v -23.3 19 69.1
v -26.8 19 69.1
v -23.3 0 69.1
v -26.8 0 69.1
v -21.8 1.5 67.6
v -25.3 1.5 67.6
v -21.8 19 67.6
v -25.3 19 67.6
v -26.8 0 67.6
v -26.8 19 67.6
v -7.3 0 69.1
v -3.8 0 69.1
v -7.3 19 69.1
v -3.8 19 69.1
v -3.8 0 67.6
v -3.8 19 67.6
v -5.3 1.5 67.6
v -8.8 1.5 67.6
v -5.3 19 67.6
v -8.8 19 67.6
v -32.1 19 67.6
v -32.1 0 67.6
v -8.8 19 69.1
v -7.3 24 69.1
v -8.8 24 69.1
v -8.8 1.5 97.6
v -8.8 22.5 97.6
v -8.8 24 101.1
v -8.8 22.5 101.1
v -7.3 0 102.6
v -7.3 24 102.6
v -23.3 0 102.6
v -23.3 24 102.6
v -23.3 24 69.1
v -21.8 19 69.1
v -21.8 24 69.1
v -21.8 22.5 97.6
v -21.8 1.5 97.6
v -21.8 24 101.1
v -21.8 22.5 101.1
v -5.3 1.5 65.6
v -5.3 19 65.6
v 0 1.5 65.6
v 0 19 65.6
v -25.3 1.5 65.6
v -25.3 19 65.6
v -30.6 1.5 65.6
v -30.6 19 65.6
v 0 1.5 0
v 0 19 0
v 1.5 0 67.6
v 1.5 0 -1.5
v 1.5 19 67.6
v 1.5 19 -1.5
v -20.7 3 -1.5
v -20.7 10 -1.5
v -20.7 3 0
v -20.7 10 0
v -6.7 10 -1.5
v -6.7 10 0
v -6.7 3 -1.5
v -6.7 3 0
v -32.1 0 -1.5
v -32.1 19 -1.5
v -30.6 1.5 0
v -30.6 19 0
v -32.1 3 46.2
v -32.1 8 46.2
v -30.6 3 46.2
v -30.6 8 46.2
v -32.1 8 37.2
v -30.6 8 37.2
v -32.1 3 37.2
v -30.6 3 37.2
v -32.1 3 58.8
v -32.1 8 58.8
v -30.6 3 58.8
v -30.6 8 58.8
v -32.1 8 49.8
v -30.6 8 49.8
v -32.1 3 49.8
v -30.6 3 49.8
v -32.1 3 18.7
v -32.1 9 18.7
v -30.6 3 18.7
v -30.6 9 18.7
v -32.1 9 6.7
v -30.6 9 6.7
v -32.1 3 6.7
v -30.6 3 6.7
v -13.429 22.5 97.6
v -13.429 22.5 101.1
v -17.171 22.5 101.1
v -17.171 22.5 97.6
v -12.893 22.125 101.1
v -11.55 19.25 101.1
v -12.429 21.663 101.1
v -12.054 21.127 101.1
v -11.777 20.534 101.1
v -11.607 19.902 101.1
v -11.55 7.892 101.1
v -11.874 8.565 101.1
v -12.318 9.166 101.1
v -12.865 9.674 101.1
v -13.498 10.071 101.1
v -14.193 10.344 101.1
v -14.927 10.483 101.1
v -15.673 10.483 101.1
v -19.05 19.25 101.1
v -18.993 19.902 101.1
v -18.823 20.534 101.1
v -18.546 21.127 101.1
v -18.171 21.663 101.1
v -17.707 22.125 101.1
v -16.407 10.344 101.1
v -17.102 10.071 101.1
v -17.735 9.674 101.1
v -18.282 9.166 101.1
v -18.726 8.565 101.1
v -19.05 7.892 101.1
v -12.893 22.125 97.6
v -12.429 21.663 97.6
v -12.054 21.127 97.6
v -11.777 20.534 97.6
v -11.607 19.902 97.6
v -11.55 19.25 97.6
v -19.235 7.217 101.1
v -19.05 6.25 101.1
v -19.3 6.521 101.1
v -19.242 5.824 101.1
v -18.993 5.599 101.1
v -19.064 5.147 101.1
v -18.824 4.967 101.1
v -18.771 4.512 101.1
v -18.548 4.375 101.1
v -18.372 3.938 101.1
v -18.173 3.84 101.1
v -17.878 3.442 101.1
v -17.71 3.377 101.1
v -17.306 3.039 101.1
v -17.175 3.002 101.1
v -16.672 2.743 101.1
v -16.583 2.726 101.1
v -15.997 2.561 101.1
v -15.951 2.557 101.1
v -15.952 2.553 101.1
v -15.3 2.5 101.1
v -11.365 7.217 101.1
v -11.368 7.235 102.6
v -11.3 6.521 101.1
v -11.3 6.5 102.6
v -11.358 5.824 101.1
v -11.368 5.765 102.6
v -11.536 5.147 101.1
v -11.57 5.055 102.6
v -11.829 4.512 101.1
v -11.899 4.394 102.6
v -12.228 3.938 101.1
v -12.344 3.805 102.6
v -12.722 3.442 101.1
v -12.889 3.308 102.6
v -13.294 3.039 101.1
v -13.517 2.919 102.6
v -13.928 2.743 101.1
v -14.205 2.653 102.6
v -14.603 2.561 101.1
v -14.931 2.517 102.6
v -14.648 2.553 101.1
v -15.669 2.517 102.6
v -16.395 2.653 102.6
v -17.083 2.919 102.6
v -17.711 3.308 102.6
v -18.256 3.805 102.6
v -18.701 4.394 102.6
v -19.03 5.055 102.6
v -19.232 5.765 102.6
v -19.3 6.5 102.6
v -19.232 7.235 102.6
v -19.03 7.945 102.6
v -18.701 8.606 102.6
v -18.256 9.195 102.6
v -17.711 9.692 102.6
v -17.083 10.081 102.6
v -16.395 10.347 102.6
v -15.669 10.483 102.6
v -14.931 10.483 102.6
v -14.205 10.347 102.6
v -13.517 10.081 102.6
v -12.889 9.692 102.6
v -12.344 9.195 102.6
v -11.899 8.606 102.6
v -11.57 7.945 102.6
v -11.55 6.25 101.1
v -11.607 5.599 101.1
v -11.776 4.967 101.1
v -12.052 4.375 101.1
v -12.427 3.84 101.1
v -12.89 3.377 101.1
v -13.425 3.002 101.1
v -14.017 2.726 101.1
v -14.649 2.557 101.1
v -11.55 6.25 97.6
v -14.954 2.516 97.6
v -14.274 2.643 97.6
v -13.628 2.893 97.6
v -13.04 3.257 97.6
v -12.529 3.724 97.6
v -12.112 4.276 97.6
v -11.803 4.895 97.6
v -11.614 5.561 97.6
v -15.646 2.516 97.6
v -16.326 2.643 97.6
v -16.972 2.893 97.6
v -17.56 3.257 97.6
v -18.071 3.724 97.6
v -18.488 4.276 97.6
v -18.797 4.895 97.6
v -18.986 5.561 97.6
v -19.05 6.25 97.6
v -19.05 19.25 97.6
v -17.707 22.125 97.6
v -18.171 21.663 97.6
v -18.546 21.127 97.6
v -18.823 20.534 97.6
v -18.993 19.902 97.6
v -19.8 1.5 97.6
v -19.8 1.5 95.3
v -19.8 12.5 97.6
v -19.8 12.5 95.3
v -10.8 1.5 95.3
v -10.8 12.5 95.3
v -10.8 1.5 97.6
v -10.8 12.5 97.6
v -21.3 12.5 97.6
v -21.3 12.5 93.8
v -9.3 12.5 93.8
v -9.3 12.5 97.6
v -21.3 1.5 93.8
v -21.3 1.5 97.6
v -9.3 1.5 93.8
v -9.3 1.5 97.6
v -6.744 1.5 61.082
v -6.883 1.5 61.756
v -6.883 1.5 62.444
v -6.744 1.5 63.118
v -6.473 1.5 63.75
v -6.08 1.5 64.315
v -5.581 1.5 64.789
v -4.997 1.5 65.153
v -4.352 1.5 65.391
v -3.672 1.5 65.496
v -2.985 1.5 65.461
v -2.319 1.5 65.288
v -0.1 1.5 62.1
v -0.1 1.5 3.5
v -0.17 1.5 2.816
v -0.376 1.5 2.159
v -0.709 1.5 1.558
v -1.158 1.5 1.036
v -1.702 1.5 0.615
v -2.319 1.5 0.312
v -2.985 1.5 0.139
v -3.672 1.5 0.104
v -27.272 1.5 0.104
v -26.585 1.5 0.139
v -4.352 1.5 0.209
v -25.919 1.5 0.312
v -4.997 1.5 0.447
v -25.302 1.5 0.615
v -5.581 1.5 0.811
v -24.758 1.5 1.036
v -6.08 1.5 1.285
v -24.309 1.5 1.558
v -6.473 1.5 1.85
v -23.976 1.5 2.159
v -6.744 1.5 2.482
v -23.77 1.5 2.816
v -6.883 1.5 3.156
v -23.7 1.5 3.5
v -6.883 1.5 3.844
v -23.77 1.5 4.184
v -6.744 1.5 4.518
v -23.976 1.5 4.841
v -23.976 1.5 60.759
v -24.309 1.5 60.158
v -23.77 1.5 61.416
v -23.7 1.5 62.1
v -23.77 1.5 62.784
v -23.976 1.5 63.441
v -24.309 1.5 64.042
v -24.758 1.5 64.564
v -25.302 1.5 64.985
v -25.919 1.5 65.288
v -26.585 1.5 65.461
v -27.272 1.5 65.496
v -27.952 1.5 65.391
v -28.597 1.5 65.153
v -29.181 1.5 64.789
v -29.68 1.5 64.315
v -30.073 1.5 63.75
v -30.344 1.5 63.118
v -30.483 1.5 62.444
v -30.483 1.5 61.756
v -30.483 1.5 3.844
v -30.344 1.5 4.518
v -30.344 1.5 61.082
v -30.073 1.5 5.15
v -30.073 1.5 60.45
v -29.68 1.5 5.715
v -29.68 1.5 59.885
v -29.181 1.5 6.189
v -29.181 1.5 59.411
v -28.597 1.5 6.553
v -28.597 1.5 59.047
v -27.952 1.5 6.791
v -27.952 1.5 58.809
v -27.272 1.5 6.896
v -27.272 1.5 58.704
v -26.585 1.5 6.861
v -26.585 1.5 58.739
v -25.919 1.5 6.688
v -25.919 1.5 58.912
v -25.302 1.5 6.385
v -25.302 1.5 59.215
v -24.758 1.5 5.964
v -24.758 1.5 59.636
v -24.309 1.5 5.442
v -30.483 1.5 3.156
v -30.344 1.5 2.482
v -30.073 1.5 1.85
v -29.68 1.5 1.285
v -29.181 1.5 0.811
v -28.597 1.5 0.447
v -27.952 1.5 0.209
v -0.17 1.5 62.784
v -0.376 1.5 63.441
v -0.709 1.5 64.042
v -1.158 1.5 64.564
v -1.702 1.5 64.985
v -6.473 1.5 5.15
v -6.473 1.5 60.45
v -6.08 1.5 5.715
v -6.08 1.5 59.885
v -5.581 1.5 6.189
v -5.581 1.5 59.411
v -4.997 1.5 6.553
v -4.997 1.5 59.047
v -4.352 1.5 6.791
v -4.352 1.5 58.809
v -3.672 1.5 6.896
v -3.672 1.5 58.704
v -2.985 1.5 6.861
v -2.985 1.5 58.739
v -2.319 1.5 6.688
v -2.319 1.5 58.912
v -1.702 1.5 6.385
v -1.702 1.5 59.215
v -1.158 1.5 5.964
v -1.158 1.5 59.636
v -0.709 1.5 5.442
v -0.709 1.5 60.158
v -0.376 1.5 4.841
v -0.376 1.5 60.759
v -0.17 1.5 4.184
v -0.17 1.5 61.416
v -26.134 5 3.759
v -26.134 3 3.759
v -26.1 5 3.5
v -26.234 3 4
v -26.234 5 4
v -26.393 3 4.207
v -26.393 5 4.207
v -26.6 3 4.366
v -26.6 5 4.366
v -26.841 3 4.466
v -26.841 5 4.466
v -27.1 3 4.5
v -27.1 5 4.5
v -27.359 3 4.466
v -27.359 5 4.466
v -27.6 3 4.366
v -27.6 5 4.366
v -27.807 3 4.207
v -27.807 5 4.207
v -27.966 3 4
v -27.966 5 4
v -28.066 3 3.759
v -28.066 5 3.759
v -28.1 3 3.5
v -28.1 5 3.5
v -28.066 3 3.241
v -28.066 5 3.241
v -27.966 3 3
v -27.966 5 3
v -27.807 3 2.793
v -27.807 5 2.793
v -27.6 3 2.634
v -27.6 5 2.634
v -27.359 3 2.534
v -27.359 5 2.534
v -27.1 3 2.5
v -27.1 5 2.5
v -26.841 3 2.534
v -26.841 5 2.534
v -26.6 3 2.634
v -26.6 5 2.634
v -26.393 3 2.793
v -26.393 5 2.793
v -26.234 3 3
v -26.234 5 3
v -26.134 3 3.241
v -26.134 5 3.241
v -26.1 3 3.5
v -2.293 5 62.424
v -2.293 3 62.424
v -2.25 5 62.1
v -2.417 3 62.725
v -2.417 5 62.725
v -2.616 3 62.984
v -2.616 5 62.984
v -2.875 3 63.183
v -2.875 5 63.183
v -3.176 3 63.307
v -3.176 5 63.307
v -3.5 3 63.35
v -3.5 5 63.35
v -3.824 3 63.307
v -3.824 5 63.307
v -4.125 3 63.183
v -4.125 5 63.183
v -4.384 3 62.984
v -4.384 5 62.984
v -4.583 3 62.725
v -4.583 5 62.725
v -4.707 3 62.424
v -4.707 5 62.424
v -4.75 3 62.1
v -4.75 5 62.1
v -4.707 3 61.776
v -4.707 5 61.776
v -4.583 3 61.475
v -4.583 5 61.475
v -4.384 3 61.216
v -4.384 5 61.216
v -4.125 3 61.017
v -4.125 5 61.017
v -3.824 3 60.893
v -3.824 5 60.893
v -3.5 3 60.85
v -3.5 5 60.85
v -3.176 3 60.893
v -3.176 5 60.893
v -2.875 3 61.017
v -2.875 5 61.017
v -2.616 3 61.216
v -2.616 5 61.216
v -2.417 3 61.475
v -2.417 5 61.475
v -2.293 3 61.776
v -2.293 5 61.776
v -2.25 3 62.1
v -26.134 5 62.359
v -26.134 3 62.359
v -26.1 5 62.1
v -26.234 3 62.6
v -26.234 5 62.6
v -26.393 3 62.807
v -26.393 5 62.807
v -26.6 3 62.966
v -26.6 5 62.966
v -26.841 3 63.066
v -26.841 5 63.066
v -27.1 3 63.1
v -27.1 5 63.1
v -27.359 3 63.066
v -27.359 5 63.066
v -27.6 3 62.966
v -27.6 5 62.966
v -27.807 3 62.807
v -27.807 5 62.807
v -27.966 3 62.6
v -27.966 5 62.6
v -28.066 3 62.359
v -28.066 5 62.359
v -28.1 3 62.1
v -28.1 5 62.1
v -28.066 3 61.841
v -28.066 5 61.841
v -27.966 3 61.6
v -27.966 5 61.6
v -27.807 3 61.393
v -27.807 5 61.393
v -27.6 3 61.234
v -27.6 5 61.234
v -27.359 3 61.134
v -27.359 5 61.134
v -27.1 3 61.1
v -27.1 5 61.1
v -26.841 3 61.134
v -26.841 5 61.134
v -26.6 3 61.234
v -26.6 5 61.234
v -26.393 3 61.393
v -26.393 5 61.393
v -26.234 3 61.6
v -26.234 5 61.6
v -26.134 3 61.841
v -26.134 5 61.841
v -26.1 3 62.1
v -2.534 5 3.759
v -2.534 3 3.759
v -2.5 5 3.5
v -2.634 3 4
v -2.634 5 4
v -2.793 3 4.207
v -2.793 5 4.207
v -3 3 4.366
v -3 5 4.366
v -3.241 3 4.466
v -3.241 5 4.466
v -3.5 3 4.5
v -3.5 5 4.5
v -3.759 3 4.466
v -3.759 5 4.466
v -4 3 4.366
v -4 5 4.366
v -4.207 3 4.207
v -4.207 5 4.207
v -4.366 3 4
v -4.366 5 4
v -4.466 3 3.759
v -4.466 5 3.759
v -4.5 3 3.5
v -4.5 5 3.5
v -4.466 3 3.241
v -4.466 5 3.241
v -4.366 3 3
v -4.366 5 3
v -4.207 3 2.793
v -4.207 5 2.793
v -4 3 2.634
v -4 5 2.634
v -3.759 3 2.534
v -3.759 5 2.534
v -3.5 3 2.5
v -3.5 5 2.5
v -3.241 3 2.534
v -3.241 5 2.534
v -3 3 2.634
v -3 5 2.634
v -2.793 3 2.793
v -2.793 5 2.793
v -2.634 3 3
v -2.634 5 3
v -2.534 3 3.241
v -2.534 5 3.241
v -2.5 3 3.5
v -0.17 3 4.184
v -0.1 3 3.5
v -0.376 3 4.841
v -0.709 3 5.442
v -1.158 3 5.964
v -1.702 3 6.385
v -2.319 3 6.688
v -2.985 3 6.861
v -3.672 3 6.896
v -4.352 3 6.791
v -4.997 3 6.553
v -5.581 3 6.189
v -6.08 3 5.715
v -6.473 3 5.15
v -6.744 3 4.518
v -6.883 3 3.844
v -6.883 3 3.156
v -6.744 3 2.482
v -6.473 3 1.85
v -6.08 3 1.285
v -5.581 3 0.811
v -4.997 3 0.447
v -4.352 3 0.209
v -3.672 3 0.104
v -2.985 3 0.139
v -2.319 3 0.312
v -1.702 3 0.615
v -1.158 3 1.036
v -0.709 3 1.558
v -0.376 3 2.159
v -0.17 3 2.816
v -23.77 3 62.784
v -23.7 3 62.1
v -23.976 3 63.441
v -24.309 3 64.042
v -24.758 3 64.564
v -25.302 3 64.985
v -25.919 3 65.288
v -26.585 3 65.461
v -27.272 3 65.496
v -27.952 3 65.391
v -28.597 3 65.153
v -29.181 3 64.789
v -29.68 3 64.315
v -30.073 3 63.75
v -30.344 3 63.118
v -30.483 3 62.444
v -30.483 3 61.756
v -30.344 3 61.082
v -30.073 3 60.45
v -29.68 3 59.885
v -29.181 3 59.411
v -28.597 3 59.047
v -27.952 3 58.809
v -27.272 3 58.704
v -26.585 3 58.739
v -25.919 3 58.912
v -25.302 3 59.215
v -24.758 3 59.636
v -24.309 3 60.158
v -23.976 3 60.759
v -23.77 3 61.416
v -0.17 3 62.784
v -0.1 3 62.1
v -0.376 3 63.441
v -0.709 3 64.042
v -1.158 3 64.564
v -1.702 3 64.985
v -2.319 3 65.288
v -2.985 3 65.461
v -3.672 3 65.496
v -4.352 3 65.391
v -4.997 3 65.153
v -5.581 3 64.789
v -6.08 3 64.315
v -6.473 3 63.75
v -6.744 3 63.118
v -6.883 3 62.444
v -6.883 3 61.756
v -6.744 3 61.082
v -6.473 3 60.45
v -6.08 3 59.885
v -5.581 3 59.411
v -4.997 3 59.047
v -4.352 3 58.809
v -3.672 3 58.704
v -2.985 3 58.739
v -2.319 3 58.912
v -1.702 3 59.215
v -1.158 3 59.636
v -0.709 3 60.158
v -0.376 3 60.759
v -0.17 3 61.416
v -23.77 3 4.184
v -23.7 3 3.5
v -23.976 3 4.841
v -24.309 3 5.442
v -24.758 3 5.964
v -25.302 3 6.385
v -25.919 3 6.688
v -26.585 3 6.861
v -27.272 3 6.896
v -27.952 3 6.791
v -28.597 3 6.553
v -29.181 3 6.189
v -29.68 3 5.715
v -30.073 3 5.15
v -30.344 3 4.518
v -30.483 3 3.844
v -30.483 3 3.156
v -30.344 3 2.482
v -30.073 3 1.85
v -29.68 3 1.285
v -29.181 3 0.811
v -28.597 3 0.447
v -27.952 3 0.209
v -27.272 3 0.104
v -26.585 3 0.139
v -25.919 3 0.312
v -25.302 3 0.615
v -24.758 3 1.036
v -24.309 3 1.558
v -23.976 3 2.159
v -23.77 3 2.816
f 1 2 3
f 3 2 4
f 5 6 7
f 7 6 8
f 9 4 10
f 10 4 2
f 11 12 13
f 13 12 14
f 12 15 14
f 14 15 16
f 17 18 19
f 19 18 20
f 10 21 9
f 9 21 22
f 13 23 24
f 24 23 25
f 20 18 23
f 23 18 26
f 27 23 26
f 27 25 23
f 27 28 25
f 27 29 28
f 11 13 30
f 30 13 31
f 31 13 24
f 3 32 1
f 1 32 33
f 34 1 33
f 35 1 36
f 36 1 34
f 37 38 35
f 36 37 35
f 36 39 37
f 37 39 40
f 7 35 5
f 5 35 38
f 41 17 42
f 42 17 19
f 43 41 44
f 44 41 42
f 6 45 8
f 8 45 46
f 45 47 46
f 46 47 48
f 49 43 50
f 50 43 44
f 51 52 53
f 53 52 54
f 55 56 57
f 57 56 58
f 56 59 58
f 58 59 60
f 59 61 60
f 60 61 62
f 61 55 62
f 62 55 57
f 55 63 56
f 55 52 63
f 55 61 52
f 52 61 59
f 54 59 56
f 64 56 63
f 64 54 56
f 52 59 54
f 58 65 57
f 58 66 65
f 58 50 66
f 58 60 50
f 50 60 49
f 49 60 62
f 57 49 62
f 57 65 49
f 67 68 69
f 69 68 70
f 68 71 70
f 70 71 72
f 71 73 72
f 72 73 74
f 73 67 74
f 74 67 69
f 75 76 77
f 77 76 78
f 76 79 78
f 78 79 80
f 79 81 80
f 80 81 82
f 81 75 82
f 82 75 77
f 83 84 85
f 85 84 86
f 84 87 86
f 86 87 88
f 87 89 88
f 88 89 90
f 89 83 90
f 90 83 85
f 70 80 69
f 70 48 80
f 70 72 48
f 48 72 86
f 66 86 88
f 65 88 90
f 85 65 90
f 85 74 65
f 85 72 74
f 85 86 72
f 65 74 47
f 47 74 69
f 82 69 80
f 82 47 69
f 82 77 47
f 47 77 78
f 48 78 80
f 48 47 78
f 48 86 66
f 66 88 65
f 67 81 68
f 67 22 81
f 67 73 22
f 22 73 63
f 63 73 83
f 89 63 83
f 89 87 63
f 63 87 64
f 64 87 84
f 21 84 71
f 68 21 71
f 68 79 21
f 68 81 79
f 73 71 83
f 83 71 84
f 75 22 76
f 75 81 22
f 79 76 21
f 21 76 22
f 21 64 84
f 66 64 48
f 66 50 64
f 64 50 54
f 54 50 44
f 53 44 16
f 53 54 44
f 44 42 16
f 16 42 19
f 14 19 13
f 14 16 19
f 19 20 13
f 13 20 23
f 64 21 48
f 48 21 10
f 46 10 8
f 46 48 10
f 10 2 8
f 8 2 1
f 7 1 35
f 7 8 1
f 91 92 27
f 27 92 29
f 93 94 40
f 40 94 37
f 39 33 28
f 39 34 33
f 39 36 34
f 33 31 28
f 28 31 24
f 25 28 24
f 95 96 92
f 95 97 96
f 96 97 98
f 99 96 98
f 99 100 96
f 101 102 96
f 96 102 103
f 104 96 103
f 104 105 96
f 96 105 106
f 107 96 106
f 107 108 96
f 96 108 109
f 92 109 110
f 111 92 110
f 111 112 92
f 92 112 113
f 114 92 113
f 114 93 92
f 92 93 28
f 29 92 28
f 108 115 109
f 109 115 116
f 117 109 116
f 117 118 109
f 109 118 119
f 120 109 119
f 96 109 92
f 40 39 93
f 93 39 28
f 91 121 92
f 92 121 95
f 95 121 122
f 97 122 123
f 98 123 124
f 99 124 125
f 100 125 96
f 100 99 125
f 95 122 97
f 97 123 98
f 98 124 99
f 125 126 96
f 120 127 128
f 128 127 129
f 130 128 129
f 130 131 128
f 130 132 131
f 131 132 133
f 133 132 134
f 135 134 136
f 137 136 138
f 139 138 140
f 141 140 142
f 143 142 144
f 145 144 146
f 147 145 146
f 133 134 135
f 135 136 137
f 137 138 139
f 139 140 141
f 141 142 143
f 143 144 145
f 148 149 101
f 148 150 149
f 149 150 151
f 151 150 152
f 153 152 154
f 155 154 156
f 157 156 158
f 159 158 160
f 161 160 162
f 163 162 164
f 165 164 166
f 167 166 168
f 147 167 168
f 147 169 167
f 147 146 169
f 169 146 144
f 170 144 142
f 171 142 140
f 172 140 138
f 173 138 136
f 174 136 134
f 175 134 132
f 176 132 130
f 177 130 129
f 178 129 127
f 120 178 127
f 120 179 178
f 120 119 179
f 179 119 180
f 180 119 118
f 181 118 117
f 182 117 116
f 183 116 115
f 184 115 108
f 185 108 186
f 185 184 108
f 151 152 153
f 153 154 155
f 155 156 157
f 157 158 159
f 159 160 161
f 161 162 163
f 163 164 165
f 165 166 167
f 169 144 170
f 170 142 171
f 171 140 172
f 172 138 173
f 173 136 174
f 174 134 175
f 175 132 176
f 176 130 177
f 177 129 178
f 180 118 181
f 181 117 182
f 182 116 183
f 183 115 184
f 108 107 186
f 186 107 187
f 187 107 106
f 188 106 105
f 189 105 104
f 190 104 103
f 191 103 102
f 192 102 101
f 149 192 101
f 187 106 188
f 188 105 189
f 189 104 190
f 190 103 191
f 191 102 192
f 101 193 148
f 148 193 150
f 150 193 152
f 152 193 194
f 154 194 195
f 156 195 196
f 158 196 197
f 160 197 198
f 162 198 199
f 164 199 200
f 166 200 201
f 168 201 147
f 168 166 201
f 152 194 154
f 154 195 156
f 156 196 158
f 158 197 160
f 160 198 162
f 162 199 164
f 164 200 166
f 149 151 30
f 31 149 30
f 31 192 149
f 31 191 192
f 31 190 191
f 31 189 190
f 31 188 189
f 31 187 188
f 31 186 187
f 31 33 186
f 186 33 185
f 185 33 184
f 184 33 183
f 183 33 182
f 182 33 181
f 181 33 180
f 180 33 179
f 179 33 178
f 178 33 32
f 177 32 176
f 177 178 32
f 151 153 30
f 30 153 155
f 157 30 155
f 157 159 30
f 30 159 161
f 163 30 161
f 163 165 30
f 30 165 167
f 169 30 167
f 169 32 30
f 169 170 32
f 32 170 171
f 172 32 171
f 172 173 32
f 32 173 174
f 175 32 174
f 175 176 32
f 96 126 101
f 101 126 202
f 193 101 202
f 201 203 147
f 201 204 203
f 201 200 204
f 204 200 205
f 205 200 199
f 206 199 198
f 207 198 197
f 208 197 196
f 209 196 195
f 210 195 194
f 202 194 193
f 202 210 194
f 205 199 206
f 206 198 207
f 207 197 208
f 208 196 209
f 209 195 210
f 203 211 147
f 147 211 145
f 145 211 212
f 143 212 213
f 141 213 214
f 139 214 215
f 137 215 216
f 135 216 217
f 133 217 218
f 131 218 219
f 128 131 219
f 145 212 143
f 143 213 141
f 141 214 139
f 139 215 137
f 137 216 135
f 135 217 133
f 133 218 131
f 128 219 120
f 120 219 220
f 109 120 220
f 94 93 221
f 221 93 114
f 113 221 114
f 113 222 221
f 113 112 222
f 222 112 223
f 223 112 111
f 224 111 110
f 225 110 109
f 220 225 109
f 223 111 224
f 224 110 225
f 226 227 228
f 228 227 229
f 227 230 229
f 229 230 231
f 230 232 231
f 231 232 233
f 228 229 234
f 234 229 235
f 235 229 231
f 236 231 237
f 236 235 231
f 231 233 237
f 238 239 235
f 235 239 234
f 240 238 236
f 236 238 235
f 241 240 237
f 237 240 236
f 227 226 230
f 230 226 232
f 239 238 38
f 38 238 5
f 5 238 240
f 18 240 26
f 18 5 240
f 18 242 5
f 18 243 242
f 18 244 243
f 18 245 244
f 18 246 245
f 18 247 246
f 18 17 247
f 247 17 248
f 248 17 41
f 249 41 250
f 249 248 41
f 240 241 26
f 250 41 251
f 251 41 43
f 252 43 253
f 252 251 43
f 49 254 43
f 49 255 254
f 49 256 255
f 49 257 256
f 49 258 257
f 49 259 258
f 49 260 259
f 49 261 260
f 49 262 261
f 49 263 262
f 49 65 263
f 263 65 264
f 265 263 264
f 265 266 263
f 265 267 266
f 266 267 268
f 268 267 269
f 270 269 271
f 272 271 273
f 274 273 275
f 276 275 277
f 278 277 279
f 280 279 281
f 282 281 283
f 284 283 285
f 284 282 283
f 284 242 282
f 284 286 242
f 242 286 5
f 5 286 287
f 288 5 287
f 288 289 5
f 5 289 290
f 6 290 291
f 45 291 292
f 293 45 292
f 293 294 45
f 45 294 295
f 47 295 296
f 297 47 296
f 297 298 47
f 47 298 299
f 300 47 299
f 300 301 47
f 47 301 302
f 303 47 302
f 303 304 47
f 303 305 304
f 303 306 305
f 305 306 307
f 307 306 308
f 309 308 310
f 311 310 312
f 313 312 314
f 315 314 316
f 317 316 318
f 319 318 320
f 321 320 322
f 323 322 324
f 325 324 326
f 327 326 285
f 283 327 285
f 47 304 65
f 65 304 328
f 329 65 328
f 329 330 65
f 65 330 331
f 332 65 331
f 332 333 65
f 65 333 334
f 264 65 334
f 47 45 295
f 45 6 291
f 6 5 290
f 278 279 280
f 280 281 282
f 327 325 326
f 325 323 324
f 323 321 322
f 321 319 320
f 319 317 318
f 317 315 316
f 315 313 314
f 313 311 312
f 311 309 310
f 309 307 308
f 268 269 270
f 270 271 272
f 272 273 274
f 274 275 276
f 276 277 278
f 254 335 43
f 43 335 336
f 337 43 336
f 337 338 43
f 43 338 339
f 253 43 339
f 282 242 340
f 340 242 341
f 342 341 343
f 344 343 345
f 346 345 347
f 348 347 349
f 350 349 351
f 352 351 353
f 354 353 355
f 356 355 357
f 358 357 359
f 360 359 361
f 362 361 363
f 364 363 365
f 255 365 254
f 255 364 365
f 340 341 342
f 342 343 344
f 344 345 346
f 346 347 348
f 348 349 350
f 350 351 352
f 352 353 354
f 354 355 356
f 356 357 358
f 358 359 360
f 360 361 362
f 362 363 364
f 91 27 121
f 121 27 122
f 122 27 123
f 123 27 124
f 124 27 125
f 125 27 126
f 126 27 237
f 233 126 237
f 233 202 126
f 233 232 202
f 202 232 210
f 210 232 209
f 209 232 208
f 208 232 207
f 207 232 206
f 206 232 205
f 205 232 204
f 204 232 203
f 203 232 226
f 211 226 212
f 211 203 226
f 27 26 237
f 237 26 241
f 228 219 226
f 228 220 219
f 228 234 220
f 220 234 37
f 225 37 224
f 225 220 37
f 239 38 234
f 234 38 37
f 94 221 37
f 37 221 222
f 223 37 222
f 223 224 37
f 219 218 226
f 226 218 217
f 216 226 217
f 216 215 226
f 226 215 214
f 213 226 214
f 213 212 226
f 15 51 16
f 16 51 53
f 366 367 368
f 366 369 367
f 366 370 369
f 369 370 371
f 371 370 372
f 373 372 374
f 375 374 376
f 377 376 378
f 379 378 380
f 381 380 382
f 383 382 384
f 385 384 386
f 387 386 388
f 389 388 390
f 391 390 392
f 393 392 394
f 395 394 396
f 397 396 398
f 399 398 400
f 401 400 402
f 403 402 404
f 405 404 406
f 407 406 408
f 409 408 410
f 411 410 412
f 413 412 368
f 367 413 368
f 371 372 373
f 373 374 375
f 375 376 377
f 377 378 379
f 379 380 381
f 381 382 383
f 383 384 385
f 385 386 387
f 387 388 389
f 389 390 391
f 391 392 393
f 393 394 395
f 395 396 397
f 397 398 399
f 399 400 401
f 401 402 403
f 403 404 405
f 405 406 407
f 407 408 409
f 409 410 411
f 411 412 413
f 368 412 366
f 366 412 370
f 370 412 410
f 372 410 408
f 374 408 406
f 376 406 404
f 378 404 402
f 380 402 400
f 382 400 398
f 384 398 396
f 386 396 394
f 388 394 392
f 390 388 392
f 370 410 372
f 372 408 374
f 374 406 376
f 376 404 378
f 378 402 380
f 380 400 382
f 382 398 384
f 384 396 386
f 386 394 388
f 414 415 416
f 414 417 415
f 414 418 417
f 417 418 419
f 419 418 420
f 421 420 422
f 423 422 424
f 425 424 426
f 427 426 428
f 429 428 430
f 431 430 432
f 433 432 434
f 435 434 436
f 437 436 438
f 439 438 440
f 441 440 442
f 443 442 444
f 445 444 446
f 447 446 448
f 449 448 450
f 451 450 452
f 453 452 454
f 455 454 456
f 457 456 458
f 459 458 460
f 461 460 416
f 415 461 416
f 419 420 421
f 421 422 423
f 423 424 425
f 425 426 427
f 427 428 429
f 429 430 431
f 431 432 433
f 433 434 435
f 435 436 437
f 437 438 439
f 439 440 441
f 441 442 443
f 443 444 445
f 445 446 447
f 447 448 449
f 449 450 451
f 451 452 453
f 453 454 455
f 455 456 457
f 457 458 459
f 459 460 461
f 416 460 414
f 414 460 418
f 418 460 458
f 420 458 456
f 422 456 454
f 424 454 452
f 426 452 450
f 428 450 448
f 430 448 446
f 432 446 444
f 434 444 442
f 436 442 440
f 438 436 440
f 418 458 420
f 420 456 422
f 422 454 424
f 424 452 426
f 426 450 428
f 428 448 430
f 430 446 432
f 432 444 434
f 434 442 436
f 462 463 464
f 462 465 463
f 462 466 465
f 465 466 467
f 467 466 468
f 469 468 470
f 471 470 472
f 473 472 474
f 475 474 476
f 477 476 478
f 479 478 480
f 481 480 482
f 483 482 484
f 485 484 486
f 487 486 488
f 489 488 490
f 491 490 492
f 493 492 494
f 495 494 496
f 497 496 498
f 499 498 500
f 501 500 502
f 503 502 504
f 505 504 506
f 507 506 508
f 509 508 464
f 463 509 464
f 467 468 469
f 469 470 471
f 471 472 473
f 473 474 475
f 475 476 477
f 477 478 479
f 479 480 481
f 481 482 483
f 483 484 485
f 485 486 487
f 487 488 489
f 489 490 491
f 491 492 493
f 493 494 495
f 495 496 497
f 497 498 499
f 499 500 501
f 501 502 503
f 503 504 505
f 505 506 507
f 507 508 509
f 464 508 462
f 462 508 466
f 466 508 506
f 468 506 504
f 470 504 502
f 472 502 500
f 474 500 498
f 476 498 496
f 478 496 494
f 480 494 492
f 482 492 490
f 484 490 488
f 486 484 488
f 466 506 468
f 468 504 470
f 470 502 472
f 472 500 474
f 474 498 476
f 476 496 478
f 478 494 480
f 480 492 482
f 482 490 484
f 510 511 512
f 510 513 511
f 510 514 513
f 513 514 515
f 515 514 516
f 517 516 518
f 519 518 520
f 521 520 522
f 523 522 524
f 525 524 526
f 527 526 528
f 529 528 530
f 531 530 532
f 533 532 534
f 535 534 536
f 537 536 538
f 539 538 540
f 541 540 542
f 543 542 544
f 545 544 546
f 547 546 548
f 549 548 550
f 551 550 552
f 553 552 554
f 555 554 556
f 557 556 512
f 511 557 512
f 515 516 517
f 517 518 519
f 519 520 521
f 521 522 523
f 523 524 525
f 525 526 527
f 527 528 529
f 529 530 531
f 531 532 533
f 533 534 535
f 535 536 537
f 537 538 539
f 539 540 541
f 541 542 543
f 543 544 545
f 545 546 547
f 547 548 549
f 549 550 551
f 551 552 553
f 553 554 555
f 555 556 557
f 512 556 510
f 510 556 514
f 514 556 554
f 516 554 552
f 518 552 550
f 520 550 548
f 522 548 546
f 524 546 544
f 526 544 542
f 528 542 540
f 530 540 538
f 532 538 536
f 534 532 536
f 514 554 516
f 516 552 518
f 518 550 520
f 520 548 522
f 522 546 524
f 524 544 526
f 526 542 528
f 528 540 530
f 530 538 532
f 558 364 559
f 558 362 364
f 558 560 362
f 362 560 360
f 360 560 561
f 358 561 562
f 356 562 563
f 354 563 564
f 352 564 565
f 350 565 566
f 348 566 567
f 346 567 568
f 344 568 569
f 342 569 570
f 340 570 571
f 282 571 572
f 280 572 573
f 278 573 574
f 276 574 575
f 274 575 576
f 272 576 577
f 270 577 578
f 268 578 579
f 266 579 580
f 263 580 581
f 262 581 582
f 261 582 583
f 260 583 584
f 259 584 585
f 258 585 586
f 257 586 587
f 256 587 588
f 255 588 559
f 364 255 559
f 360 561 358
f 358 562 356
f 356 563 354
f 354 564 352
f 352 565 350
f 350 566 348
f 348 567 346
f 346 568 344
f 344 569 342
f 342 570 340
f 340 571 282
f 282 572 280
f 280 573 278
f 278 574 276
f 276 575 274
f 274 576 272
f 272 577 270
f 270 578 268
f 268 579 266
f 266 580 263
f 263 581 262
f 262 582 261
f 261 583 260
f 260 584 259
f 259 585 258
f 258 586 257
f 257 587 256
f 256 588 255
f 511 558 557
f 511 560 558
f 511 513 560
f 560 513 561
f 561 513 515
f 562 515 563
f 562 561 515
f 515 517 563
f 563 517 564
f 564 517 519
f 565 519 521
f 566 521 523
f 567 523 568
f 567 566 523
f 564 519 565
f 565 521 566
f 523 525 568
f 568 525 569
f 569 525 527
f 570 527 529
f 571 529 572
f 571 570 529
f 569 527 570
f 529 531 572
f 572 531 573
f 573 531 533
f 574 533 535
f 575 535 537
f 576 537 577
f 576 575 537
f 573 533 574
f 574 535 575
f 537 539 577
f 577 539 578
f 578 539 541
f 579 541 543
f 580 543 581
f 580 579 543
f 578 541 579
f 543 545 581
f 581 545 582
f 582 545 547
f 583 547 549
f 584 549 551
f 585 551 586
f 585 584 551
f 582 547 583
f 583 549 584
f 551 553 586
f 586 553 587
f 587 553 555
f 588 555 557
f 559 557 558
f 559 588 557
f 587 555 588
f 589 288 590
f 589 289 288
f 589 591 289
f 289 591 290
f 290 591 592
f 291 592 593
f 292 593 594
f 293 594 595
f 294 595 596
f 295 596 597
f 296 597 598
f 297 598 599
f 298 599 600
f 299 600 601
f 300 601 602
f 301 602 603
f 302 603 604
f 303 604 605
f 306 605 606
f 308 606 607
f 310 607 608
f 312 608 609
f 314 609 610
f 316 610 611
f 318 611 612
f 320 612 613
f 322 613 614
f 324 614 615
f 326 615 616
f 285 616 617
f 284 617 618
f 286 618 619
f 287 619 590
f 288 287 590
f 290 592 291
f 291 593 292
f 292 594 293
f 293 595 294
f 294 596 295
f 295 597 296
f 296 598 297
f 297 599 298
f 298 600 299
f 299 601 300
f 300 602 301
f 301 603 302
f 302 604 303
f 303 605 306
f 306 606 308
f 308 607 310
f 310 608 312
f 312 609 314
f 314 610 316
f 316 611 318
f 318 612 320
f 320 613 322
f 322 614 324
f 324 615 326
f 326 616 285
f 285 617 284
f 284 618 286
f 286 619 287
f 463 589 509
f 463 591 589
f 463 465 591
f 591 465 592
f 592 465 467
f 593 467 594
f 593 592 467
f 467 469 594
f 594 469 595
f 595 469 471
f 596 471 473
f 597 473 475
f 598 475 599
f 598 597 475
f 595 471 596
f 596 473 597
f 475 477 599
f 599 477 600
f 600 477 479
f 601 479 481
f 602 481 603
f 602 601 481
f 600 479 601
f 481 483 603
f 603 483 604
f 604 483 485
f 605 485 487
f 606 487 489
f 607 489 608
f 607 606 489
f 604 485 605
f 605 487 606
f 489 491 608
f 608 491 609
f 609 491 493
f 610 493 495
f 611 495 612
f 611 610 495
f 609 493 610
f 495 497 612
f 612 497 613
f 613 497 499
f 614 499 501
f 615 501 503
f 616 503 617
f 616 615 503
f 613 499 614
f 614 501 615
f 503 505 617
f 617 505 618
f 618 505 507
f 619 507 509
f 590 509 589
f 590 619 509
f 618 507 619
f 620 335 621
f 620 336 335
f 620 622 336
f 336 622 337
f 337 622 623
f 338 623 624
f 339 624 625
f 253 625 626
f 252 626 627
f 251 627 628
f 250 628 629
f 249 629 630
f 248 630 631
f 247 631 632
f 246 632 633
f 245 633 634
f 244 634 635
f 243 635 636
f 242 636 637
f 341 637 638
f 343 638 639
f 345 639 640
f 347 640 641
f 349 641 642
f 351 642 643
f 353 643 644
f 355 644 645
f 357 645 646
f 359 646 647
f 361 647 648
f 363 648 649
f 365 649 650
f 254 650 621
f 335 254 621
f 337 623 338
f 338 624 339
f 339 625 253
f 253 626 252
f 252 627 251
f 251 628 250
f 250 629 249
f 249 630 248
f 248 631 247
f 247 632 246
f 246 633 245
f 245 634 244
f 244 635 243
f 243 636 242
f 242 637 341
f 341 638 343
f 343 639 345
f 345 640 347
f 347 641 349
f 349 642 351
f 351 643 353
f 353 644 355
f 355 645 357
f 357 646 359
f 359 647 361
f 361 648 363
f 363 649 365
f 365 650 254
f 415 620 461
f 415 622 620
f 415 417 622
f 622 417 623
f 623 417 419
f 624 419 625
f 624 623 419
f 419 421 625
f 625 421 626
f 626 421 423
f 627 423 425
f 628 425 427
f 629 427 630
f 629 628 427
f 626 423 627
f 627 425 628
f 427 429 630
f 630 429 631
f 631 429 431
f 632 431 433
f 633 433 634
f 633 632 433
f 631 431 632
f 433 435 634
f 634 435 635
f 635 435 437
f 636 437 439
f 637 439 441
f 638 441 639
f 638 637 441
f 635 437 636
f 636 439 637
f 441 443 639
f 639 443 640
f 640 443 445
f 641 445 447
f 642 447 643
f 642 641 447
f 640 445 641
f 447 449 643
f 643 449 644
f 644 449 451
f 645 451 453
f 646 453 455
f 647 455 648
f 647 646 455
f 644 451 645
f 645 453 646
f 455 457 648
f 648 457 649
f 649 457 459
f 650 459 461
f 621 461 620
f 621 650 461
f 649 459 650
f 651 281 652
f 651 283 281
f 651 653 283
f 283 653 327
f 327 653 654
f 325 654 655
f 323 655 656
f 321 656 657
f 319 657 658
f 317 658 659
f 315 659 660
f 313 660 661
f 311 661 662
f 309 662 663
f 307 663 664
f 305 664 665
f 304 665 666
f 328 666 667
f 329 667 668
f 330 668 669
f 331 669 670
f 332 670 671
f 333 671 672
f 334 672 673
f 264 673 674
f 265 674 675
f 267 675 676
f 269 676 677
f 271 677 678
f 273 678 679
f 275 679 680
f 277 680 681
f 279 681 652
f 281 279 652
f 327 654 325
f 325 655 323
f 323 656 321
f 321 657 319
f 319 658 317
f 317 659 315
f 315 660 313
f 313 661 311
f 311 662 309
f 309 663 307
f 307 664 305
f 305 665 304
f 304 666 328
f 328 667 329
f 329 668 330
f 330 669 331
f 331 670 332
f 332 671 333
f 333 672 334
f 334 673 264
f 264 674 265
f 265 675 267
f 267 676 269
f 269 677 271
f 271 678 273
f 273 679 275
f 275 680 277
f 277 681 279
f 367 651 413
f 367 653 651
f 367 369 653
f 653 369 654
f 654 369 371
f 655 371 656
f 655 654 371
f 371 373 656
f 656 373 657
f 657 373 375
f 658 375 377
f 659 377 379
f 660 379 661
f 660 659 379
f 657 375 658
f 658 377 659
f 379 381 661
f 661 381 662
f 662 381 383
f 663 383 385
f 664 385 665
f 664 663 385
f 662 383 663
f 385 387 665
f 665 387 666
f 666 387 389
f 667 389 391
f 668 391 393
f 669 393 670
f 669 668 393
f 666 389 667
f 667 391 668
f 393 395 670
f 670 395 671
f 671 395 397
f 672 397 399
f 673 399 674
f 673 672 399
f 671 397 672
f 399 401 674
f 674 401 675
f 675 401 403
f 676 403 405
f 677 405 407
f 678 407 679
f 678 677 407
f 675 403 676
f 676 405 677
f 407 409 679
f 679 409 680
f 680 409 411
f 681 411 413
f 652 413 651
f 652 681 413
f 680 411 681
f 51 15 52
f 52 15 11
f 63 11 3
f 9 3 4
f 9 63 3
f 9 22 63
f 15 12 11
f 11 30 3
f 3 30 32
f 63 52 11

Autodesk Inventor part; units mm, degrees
ref_plane "YZ Plane" through (0, 0, 0) normal (1, 0, 0) x (0, 1, 0)
ref_plane "XZ Plane" through (0, 0, 0) normal (0, 1, 0) x (-1, 0, 0)
ref_plane "XY Plane" through (0, 0, 0) normal (0, 0, 1) x (1, 0, 0)
sketch "Szkic1" plane through (0, 0, 0) normal (0, 1, 0) x (-1, 0, 0)
  line L0 (0, 0) -> (30.6, 0)
  line L1 (30.6, 0) -> (30.6, 65.6)
  line L2 (30.6, 65.6) -> (0, 65.6)
  line L3 (0, 65.6) -> (0, 0)
  dimension "d0" = 30.6
  dimension "d1" = 65.6
extrude "Wyciągnięcie proste1" add sketch "Szkic1" along normal blind 1.5
sketch "Szkic2" plane through (0, 1.5, 0) normal (0, 1, 0) x (1, 0, 0)
  line L0 (-30.6, 0) -> (-30.6, -65.6) construction
  line L1 (-30.6, -65.6) -> (-30.6, -62.1) construction
  line L2 (-30.6, -62.1) -> (-27.1, -62.1) construction
  line L3 (0, 0) -> (-30.6, 0) construction
  line L4 (0, 0) -> (-3.5, 0) construction
  line L5 (-3.5, 0) -> (-3.5, -3.5) construction
  line L6 (-30.6, -65.6) -> (0, -65.6) construction
  line L7 (0, -65.6) -> (-3.5, -65.6) construction
  line L8 (-3.5, -65.6) -> (-3.5, -62.1) construction
  line L9 (-3.5, -62.1) -> (0, -62.1) construction
  line L10 (0, -62.1) -> (0, -65.6) construction
  line L11 (-30.6, 0) -> (-27.1, 0) construction
  line L12 (-27.1, 0) -> (-27.1, -3.5) construction
  line L13 (-27.1, -3.5) -> (-30.6, -3.5) construction
  line L14 (-30.6, -3.5) -> (-30.6, 0) construction
  circle A0 centre (-27.1, -62.1) radius 3.4
  circle A1 centre (-3.5, -62.1) radius 3.4
  circle A2 centre (-3.5, -3.5) radius 3.4
  circle A3 centre (-27.1, -3.5) radius 3.4
  dimension "d4" = 3.5
  dimension "d5" = 3.5
  dimension "d6" = 3.5
  dimension "d7" = 3.5
  dimension "d8" = 3.5
  dimension "d9" = 3.5
  dimension "d10" = 3.5
  dimension "d11" = 3.5
  dimension "d12" = 6.8
  dimension "d13" = 6.8
  dimension "d14" = 6.8
  dimension "d15" = 6.8
extrude "Wyciągnięcie proste2" add sketch "Szkic2" along normal blind 1.5
sketch "Szkic3" plane through (-27.1, 3, 62.1) normal (0, 1, 0) x (1, 0, 0)
  circle A0 centre (23.6, 0) radius 3.4 projected
  circle A1 centre (23.6, 0) radius 1.25
  circle A2 centre (0, 0) radius 3.4 projected
  circle A3 centre (0, 0) radius 1
  circle A4 centre (0, 58.6) radius 3.4 projected
  circle A5 centre (0, 58.6) radius 1
  circle A6 centre (23.6, 58.6) radius 3.4 projected
  circle A7 centre (23.6, 58.6) radius 1
  point P0 (27.1, 62.1)
  dimension "d18" = 2.5
  dimension "d19" = 2
  dimension "d20" = 2
  dimension "d21" = 2
extrude "Wyciągnięcie proste3" add sketch "Szkic3" along normal blind 2 contours A1 | A3 | A5 | A7
sketch "Szkic4" plane through (0, 0, 0) normal (0, -1, 0) x (1, 0, 0)
  line L0 (-30.6, 65.6) -> (0, 65.6) construction
  line L1 (-15.3, 65.6) -> (-25.3, 65.6) construction
  line L2 (-25.3, 65.6) -> (-5.3, 65.6)
  line L3 (-5.3, 65.6) -> (-5.3, 67.6)
  line L4 (-5.3, 67.6) -> (-25.3, 67.6)
  line L5 (-25.3, 67.6) -> (-25.3, 65.6)
  line L6 (-15.3, 67.6) -> (-21.8, 67.6) construction
  line L7 (-21.8, 67.6) -> (-8.8, 67.6)
  line L8 (-8.8, 67.6) -> (-8.8, 97.6)
  line L9 (-8.8, 97.6) -> (-21.8, 97.6)
  line L10 (-21.8, 97.6) -> (-21.8, 67.6)
  point P0 (0, 0)
  dimension "d24" = 10
  dimension "d25" = 20
  dimension "d26" = 2
  dimension "d27" = 6.5
  dimension "d28" = 13
  dimension "d29" = 30
extrude "Wyciągnięcie proste4" add sketch "Szkic4" against normal blind 1.5
sketch "Szkic5" plane through (0, 1.5, 0) normal (0, 1, 0) x (1, 0, 0)
  point P0 (0, 0)
sketch "Szkic6" plane through (0, 0, 0) normal (0, -1, 0) x (1, 0, 0)
  line L0 (-21.8, 97.6) -> (-8.8, 97.6) projected
  line L1 (-8.8, 97.6) -> (-21.8, 97.6)
  line L2 (-21.8, 97.6) -> (-21.8, 101.1)
  line L3 (-21.8, 101.1) -> (-8.8, 101.1)
  line L4 (-8.8, 101.1) -> (-8.8, 97.6)
  point P0 (0, 0)
  dimension "d32" = 13
  dimension "d33" = 3.5
extrude "Wyciągnięcie proste5" add sketch "Szkic6" against normal blind 24
sketch "Szkic7" plane through (0, 1.5, 0) normal (0, 1, 0) x (1, 0, 0)
  line L0 (-21.8, -97.6) -> (-8.8, -97.6) construction
  line L1 (-21.8, -97.6) -> (-19.8, -97.6) construction
  line L2 (-19.8, -97.6) -> (-10.8, -97.6)
  line L3 (-10.8, -97.6) -> (-10.8, -95.3)
  line L4 (-10.8, -95.3) -> (-19.8, -95.3)
  line L5 (-19.8, -95.3) -> (-19.8, -97.6)
  line L6 (-21.8, -97.6) -> (-21.3, -97.6) construction
  line L7 (-21.3, -97.6) -> (-9.3, -97.6)
  line L8 (-9.3, -97.6) -> (-9.3, -93.8)
  line L9 (-9.3, -93.8) -> (-21.3, -93.8)
  line L10 (-21.3, -93.8) -> (-21.3, -97.6)
  point P0 (0, 0)
  dimension "d36" = 2
  dimension "d37" = 9
  dimension "d38" = 2.3
  dimension "d39" = 0.5
  dimension "d40" = 12
  dimension "d41" = 3.8
extrude "Wyciągnięcie proste6" add sketch "Szkic7" along normal blind 11 contours L7 L10 L9 L8 L3 L4 L5
sketch "Szkic8" plane through (-8.8, 24, 97.6) normal (0, 0, -1) x (-1, 0, 0)
  line L0 (11, -11.5) -> (2, -11.5) construction
  line L1 (6.5, -11.5) -> (6.5, -8.5) construction
  line L2 (6.5, -8.5) -> (6.5, -4.75) construction
  circle A0 centre (6.5, -4.75) radius 3.75
  line L3 (11, -22.5) -> (2, -22.5) construction
  line L4 (6.5, -22.5) -> (6.5, -17.75) construction
  circle A1 centre (6.5, -17.75) radius 3.75
  line L5 (10.25, -4.75) -> (10.25, -17.75)
  line L6 (2.75, -4.75) -> (2.75, -17.75)
  point P0 (-8.8, -24)
  dimension "d44" = 3
  dimension "d45" = 3.75
  dimension "d46" = 7.5
  dimension "d47" = 4.75
  dimension "d48" = 7.5
extrude "Wyciągnięcie proste7" cut sketch "Szkic8" against normal blind 11
sketch "Szkic9" plane through (0, 0, 0) normal (0, -1, 0) x (1, 0, 0)
  line L0 (-21.8, 101.1) -> (-8.8, 101.1)
  line L1 (-8.8, 101.1) -> (-8.8, 102.6)
  line L2 (-8.8, 102.6) -> (-21.8, 102.6)
  line L3 (-21.8, 102.6) -> (-21.8, 101.1)
  point P0 (0, 0)
  dimension "d51" = 13
  dimension "d52" = 1.5
extrude "Wyciągnięcie proste8" add sketch "Szkic9" against normal blind 24
sketch "Szkic10" plane through (-21.8, 0, 102.6) normal (0, 0, 1) x (1, 0, 0)
  line L0 (13, 0) -> (0, 0) construction
  line L1 (6.5, 0) -> (6.5, 6.5) construction
  circle A0 centre (6.5, 6.5) radius 4
  point P0 (21.8, 0)
  dimension "d55" = 6.5
  dimension "d56" = 8
extrude "Wyciągnięcie proste9" cut sketch "Szkic10" against normal blind 1.5
sketch "Szkic11" plane through (0, 24, 0) normal (0, 1, 0) x (1, 0, 0)
  line L0 (-8.8, -97.6) -> (-21.8, -97.6)
  line L1 (-21.8, -97.6) -> (-21.8, -101.1)
  line L2 (-21.8, -101.1) -> (-8.8, -101.1)
  line L3 (-8.8, -101.1) -> (-8.8, -97.6)
  point P0 (0, 0)
  dimension "d59" = 13
  dimension "d60" = 3.5
extrude "Wyciągnięcie proste10" cut sketch "Szkic11" against normal blind 1.5
sketch "Szkic12" plane through (0, 0, 0) normal (0, -1, 0) x (1, 0, 0)
  line L0 (-30.6, 0) -> (-30.6, 65.6) projected
  line L1 (-30.6, 65.6) -> (-32.1, 65.6)
  line L2 (-32.1, 65.6) -> (-32.1, 0)
  line L3 (-32.1, 0) -> (-30.6, 0)
  line L4 (-30.6, 0) -> (-30.6, 65.6)
  point P0 (0, 0)
  dimension "d63" = 1.5
  dimension "d64" = 65.6
extrude "Wyciągnięcie proste11" add sketch "Szkic12" against normal blind 19
sketch "Szkic13" plane through (-32.1, 0, 0) normal (-1, 0, 0) x (0, 0, 1)
  line L0 (65.6, 0) -> (65.6, 1.5) construction
  line L1 (65.6, 0) -> (65.6, 3) construction
  line L2 (65.6, 1.5) -> (65.6, 19) construction
  line L3 (65.6, 3) -> (0, 3) construction
  line L4 (0, 3) -> (54.3, 3) construction
  line L5 (0, 3) -> (41.7, 3) construction
  line L6 (0, 3) -> (12.7, 3) construction
  line L7 (54.3, 3) -> (58.8, 3) construction
  line L8 (41.7, 3) -> (46.2, 3) construction
  line L9 (46.2, 3) -> (37.2, 3)
  line L10 (37.2, 3) -> (37.2, 8)
  line L11 (37.2, 8) -> (46.2, 8)
  line L12 (46.2, 8) -> (46.2, 3)
  line L13 (58.8, 3) -> (49.8, 3)
  line L14 (49.8, 3) -> (49.8, 8)
  line L15 (49.8, 8) -> (58.8, 8)
  line L16 (58.8, 8) -> (58.8, 3)
  line L17 (12.7, 3) -> (18.7, 3) construction
  line L18 (18.7, 3) -> (6.7, 3)
  line L19 (6.7, 3) -> (6.7, 9)
  line L20 (6.7, 9) -> (18.7, 9)
  line L21 (18.7, 9) -> (18.7, 3)
  point P0 (0, 0)
  dimension "d67" = 3
  dimension "d68" = 54.3
  dimension "d69" = 41.7
  dimension "d70" = 12.7
  dimension "d71" = 4.5
  dimension "d72" = 4.5
  dimension "d73" = 9
  dimension "d74" = 5
  dimension "d75" = 9
  dimension "d76" = 5
  dimension "d77" = 6
  dimension "d78" = 12
  dimension "d79" = 6
extrude "Wyciągnięcie proste12" cut sketch "Szkic13" against normal blind 1.5
sketch "Szkic14" plane through (0, 0, 0) normal (0, -1, 0) x (1, 0, 0)
  line L0 (-32.1, 65.6) -> (-32.1, 0) projected
  line L1 (-32.1, 0) -> (0, 0)
  line L2 (0, 0) -> (0, -1.5)
  line L3 (0, -1.5) -> (-32.1, -1.5)
  line L4 (-32.1, -1.5) -> (-32.1, 0)
  dimension "d82" = 32.1
  dimension "d83" = 1.5
extrude "Wyciągnięcie proste13" add sketch "Szkic14" against normal blind 19
sketch "Szkic15" plane through (0, 0, -1.5) normal (0, 0, -1) x (-1, 0, 0)
  line L0 (32.1, 0) -> (32.1, 19) construction
  line L1 (32.1, 0) -> (32.1, 3) construction
  line L2 (6.9, 3) -> (0.1, 3) construction
  line L3 (32.1, 3) -> (0.1, 3) construction
  line L4 (0.1, 3) -> (6.7, 3) construction
  line L5 (6.7, 3) -> (20.7, 3)
  line L6 (20.7, 3) -> (20.7, 10)
  line L7 (20.7, 10) -> (6.7, 10)
  line L8 (6.7, 10) -> (6.7, 3)
  point P0 (0, 0)
  dimension "d86" = 3
  dimension "d87" = 6.6
  dimension "d88" = 14
  dimension "d89" = 7
extrude "Wyciągnięcie proste14" cut sketch "Szkic15" against normal blind 1.5
sketch "Szkic16" plane through (0, 0, 0) normal (0, -1, 0) x (1, 0, 0)
  line L0 (0, 65.6) -> (0, 0) projected
  line L1 (0, 65.6) -> (1.5, 65.6)
  line L2 (1.5, 65.6) -> (1.5, -1.5)
  line L3 (1.5, -1.5) -> (0, -1.5)
  line L4 (0, -1.5) -> (0, 65.6)
  dimension "d92" = 1.5
extrude "Wyciągnięcie proste15" add sketch "Szkic16" against normal blind 19
sketch "Szkic17" plane through (0, 0, 0) normal (0, -1, 0) x (1, 0, 0)
  point P0 (0, 0)
sketch "Szkic18" plane through (0, 0, 0) normal (0, -1, 0) x (1, 0, 0)
  line L0 (1.5, 65.6) -> (1.5, -1.5) projected
  line L1 (-5.3, 65.6) -> (-5.3, 67.6) projected
  line L2 (1.5, 65.6) -> (-5.3, 65.6)
  line L3 (-5.3, 65.6) -> (-5.3, 67.6)
  line L4 (-5.3, 67.6) -> (1.5, 67.6)
  line L5 (1.5, 67.6) -> (1.5, 65.6)
  line L6 (-25.3, 65.6) -> (-32.1, 65.6) projected
  line L7 (-21.8, 67.6) -> (-25.3, 67.6) projected
  line L8 (-32.1, 65.6) -> (-25.3, 65.6)
  line L9 (-25.3, 65.6) -> (-25.3, 67.6)
  line L10 (-25.3, 67.6) -> (-32.1, 67.6)
  line L11 (-32.1, 67.6) -> (-32.1, 65.6)
  point P0 (0, 0)
extrude "Wyciągnięcie proste16" add sketch "Szkic18" against normal blind 19
sketch "Szkic19" plane through (0, 0, 0) normal (0, -1, 0) x (1, 0, 0)
  line L0 (-8.8, 97.6) -> (-8.8, 67.6) construction
  line L1 (-8.8, 67.6) -> (-7.3, 67.6) construction
  line L2 (-7.3, 67.6) -> (-7.3, 69.1) construction
  line L3 (-7.3, 69.1) -> (-8.8, 69.1) construction
  line L4 (-8.8, 69.1) -> (-8.8, 67.6) construction
  line L5 (-21.8, 67.6) -> (-21.8, 97.6) construction
  line L6 (-21.8, 67.6) -> (-23.3, 67.6) construction
  line L7 (-23.3, 67.6) -> (-23.3, 69.1) construction
  line L8 (-23.3, 69.1) -> (-21.8, 69.1) construction
  line L9 (-21.8, 69.1) -> (-21.8, 67.6) construction
  line L10 (-5.3, 67.6) -> (1.5, 67.6) construction
  line L11 (-5.3, 67.6) -> (-5.3, 69.1) construction
  line L12 (-25.3, 67.6) -> (-21.8, 67.6) construction
  line L13 (-25.3, 67.6) -> (-25.3, 69.1) construction
  line L14 (-5.3, 69.1) -> (-3.8, 69.1) construction
  line L15 (-3.8, 69.1) -> (-3.8, 67.6) construction
  line L16 (-3.8, 67.6) -> (-5.3, 67.6) construction
  line L17 (-5.3, 67.6) -> (-5.3, 69.1) construction
  line L18 (-25.3, 69.1) -> (-26.8, 69.1) construction
  line L19 (-26.8, 69.1) -> (-26.8, 67.6) construction
  line L20 (-26.8, 67.6) -> (-25.3, 67.6) construction
  line L21 (-25.3, 67.6) -> (-25.3, 69.1) construction
  line L22 (-8.8, 67.6) -> (-8.8, 102.6) construction
  line L23 (-8.8, 102.6) -> (-7.3, 102.6) construction
  line L24 (-21.8, 102.6) -> (-21.8, 67.6) construction
  line L25 (-21.8, 102.6) -> (-23.3, 102.6) construction
  line L26 (-7.3, 102.6) -> (-8.8, 102.6)
  line L27 (-8.8, 102.6) -> (-8.8, 69.1)
  line L28 (-8.8, 69.1) -> (-7.3, 69.1)
  line L29 (-7.3, 69.1) -> (-7.3, 102.6)
  line L30 (-23.3, 102.6) -> (-21.8, 102.6)
  line L31 (-21.8, 102.6) -> (-21.8, 69.1)
  line L32 (-21.8, 69.1) -> (-23.3, 69.1)
  line L33 (-23.3, 69.1) -> (-23.3, 102.6)
  line L34 (-8.8, 67.6) -> (-5.3, 67.6) projected
  line L35 (-3.8, 69.1) -> (-8.8, 69.1)
  line L36 (-8.8, 69.1) -> (-8.8, 67.6)
  line L37 (-8.8, 67.6) -> (-3.8, 67.6)
  line L38 (-3.8, 67.6) -> (-3.8, 69.1)
  line L39 (-26.8, 67.6) -> (-21.8, 67.6)
  line L40 (-21.8, 67.6) -> (-21.8, 69.1)
  line L41 (-21.8, 69.1) -> (-26.8, 69.1)
  line L42 (-26.8, 69.1) -> (-26.8, 67.6)
  point P0 (0, 0)
  dimension "d97" = 1.5
  dimension "d98" = 1.5
  dimension "d99" = 1.5
  dimension "d100" = 1.5
  dimension "d101" = 1.5
  dimension "d102" = 1.5
  dimension "d103" = 1.5
  dimension "d104" = 1.5
  dimension "d105" = 1.5
  dimension "d106" = 1.5
extrude "Wyciągnięcie proste17" add sketch "Szkic19" against normal blind 24 contours L29 L28 L27 L26 | L30 L31 L32 L33
sketch "Szkic20" plane through (0, 0, 0) normal (0, -1, 0) x (1, 0, 0)
  line L0 (-25.3, 67.6) -> (-21.8, 67.6) construction
  line L1 (-25.3, 67.6) -> (-26.8, 67.6) construction
  line L2 (-26.8, 67.6) -> (-26.8, 69.1) construction
  line L3 (-26.8, 69.1) -> (-25.3, 69.1) construction
  line L4 (-25.3, 69.1) -> (-25.3, 67.6) construction
  line L5 (-8.8, 67.6) -> (-5.3, 67.6) construction
  line L6 (-5.3, 67.6) -> (-3.8, 67.6) construction
  line L7 (-3.8, 67.6) -> (-3.8, 69.1) construction
  line L8 (-3.8, 69.1) -> (-5.3, 69.1) construction
  line L9 (-5.3, 69.1) -> (-5.3, 67.6) construction
  line L10 (-26.8, 69.1) -> (-21.8, 69.1)
  line L11 (-21.8, 69.1) -> (-21.8, 67.6)
  line L12 (-21.8, 67.6) -> (-26.8, 67.6)
  line L13 (-26.8, 67.6) -> (-26.8, 69.1)
  line L14 (-8.8, 67.6) -> (-3.8, 67.6)
  line L15 (-3.8, 67.6) -> (-3.8, 69.1)
  line L16 (-3.8, 69.1) -> (-8.8, 69.1)
  line L17 (-8.8, 69.1) -> (-8.8, 67.6)
  point P0 (0, 0)
  dimension "d109" = 1.5
  dimension "d110" = 1.5
  dimension "d111" = 1.5
  dimension "d112" = 1.5
extrude "Wyciągnięcie proste18" add sketch "Szkic20" against normal blind 19
properties part number "dol"
